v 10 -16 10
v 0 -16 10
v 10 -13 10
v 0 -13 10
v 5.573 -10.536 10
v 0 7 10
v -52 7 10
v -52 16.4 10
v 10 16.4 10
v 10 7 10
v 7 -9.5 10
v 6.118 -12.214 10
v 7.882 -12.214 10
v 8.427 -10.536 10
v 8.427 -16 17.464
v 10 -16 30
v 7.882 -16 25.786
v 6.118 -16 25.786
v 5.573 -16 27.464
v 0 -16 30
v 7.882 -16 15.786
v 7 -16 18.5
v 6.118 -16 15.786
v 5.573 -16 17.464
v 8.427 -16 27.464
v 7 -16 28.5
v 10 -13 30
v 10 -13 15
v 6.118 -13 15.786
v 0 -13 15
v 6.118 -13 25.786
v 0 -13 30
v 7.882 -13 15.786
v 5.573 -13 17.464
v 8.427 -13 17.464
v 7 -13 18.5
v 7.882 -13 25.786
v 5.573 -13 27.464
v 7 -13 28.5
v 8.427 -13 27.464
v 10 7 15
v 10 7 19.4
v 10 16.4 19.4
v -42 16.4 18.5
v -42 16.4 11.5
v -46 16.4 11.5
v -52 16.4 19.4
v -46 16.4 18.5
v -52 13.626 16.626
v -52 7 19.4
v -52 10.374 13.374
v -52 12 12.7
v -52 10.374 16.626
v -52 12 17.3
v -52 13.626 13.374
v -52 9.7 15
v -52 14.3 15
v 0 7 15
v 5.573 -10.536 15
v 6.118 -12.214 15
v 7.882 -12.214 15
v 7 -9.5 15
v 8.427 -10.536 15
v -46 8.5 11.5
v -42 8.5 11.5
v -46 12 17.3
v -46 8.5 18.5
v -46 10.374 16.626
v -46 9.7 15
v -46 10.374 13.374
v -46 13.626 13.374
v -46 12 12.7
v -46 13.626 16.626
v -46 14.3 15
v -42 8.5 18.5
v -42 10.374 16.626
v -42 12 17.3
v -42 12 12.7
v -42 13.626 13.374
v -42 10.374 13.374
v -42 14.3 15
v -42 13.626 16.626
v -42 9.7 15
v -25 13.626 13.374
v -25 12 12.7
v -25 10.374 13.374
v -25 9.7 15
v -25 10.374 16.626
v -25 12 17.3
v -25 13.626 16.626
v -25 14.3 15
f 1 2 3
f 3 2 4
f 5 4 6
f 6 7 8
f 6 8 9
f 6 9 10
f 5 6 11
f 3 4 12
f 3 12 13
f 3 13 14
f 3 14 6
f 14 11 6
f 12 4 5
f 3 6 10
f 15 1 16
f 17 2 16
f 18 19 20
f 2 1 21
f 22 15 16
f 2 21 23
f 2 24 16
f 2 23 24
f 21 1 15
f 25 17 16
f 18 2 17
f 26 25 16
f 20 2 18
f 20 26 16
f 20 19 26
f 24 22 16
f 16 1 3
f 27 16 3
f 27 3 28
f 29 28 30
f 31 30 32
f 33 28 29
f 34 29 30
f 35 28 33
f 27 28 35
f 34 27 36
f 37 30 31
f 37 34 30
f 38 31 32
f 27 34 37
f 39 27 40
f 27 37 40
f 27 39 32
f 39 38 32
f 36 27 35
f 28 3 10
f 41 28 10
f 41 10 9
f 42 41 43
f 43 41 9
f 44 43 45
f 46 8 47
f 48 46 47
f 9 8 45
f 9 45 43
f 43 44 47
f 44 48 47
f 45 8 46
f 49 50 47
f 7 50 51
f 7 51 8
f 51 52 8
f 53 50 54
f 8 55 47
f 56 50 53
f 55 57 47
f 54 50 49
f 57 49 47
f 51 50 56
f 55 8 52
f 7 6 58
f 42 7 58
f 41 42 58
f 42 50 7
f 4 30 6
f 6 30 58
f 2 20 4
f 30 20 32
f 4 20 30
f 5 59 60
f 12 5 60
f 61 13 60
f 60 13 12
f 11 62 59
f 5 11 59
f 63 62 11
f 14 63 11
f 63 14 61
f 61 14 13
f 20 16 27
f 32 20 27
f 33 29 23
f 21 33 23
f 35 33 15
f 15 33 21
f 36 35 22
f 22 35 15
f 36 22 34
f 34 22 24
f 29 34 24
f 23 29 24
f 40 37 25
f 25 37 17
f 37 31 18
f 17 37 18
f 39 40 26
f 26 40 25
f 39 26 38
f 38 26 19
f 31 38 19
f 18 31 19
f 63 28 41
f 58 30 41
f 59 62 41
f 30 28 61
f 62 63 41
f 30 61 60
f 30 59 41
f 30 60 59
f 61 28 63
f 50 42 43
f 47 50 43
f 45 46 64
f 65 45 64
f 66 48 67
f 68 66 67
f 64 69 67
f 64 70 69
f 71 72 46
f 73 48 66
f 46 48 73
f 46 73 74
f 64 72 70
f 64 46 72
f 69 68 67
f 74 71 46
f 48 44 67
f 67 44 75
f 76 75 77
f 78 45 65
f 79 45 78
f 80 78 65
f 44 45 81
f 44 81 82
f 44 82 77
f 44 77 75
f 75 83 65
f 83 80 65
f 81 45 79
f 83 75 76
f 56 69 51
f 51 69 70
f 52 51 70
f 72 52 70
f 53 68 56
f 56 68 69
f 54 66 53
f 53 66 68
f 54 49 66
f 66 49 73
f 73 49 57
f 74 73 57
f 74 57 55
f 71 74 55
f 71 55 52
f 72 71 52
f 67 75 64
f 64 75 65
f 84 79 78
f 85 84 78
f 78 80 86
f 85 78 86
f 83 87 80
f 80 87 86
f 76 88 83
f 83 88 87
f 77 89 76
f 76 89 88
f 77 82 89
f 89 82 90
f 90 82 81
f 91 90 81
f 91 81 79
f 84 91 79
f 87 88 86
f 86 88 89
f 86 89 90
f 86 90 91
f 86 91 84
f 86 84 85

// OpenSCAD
dist_cent=45;

rotate([0,-90,0]){
difference(){

union(){

//Pieza móvil
translate([30/2-10/2,7,-10])
cube([10-0.6,10-0.6,62]);

}

union(){
//Pasante vertical
translate([30/2,7+10/2,25])
cylinder(r=2.3,h=30);
//Cajera tuerca
translate([30/2-7/2,8.5,42])
cube([7,10,4]); 
}


}

difference(){
// L
translate([30/2-10/2,7,-10])
rotate([90,0,0])
cube([5,10,20]);

translate([30/2-10/2-1,7-1-17,-7])
rotate([90,0,90])
cylinder(r=1.5,h=30);

}

difference(){
// Soporte
translate([30/2-10/2,7-20,-10])
rotate([90,0,0])
cube([20,10,3]);

union(){
translate([30/2-10/2-1+8,7-1-17,-7])
rotate([90,0,0])
cylinder(r=1.5,h=30);

translate([30/2-10/2-1+18,7-1-17,-7])
rotate([90,0,0])
cylinder(r=1.5,h=30);

}

}

}
